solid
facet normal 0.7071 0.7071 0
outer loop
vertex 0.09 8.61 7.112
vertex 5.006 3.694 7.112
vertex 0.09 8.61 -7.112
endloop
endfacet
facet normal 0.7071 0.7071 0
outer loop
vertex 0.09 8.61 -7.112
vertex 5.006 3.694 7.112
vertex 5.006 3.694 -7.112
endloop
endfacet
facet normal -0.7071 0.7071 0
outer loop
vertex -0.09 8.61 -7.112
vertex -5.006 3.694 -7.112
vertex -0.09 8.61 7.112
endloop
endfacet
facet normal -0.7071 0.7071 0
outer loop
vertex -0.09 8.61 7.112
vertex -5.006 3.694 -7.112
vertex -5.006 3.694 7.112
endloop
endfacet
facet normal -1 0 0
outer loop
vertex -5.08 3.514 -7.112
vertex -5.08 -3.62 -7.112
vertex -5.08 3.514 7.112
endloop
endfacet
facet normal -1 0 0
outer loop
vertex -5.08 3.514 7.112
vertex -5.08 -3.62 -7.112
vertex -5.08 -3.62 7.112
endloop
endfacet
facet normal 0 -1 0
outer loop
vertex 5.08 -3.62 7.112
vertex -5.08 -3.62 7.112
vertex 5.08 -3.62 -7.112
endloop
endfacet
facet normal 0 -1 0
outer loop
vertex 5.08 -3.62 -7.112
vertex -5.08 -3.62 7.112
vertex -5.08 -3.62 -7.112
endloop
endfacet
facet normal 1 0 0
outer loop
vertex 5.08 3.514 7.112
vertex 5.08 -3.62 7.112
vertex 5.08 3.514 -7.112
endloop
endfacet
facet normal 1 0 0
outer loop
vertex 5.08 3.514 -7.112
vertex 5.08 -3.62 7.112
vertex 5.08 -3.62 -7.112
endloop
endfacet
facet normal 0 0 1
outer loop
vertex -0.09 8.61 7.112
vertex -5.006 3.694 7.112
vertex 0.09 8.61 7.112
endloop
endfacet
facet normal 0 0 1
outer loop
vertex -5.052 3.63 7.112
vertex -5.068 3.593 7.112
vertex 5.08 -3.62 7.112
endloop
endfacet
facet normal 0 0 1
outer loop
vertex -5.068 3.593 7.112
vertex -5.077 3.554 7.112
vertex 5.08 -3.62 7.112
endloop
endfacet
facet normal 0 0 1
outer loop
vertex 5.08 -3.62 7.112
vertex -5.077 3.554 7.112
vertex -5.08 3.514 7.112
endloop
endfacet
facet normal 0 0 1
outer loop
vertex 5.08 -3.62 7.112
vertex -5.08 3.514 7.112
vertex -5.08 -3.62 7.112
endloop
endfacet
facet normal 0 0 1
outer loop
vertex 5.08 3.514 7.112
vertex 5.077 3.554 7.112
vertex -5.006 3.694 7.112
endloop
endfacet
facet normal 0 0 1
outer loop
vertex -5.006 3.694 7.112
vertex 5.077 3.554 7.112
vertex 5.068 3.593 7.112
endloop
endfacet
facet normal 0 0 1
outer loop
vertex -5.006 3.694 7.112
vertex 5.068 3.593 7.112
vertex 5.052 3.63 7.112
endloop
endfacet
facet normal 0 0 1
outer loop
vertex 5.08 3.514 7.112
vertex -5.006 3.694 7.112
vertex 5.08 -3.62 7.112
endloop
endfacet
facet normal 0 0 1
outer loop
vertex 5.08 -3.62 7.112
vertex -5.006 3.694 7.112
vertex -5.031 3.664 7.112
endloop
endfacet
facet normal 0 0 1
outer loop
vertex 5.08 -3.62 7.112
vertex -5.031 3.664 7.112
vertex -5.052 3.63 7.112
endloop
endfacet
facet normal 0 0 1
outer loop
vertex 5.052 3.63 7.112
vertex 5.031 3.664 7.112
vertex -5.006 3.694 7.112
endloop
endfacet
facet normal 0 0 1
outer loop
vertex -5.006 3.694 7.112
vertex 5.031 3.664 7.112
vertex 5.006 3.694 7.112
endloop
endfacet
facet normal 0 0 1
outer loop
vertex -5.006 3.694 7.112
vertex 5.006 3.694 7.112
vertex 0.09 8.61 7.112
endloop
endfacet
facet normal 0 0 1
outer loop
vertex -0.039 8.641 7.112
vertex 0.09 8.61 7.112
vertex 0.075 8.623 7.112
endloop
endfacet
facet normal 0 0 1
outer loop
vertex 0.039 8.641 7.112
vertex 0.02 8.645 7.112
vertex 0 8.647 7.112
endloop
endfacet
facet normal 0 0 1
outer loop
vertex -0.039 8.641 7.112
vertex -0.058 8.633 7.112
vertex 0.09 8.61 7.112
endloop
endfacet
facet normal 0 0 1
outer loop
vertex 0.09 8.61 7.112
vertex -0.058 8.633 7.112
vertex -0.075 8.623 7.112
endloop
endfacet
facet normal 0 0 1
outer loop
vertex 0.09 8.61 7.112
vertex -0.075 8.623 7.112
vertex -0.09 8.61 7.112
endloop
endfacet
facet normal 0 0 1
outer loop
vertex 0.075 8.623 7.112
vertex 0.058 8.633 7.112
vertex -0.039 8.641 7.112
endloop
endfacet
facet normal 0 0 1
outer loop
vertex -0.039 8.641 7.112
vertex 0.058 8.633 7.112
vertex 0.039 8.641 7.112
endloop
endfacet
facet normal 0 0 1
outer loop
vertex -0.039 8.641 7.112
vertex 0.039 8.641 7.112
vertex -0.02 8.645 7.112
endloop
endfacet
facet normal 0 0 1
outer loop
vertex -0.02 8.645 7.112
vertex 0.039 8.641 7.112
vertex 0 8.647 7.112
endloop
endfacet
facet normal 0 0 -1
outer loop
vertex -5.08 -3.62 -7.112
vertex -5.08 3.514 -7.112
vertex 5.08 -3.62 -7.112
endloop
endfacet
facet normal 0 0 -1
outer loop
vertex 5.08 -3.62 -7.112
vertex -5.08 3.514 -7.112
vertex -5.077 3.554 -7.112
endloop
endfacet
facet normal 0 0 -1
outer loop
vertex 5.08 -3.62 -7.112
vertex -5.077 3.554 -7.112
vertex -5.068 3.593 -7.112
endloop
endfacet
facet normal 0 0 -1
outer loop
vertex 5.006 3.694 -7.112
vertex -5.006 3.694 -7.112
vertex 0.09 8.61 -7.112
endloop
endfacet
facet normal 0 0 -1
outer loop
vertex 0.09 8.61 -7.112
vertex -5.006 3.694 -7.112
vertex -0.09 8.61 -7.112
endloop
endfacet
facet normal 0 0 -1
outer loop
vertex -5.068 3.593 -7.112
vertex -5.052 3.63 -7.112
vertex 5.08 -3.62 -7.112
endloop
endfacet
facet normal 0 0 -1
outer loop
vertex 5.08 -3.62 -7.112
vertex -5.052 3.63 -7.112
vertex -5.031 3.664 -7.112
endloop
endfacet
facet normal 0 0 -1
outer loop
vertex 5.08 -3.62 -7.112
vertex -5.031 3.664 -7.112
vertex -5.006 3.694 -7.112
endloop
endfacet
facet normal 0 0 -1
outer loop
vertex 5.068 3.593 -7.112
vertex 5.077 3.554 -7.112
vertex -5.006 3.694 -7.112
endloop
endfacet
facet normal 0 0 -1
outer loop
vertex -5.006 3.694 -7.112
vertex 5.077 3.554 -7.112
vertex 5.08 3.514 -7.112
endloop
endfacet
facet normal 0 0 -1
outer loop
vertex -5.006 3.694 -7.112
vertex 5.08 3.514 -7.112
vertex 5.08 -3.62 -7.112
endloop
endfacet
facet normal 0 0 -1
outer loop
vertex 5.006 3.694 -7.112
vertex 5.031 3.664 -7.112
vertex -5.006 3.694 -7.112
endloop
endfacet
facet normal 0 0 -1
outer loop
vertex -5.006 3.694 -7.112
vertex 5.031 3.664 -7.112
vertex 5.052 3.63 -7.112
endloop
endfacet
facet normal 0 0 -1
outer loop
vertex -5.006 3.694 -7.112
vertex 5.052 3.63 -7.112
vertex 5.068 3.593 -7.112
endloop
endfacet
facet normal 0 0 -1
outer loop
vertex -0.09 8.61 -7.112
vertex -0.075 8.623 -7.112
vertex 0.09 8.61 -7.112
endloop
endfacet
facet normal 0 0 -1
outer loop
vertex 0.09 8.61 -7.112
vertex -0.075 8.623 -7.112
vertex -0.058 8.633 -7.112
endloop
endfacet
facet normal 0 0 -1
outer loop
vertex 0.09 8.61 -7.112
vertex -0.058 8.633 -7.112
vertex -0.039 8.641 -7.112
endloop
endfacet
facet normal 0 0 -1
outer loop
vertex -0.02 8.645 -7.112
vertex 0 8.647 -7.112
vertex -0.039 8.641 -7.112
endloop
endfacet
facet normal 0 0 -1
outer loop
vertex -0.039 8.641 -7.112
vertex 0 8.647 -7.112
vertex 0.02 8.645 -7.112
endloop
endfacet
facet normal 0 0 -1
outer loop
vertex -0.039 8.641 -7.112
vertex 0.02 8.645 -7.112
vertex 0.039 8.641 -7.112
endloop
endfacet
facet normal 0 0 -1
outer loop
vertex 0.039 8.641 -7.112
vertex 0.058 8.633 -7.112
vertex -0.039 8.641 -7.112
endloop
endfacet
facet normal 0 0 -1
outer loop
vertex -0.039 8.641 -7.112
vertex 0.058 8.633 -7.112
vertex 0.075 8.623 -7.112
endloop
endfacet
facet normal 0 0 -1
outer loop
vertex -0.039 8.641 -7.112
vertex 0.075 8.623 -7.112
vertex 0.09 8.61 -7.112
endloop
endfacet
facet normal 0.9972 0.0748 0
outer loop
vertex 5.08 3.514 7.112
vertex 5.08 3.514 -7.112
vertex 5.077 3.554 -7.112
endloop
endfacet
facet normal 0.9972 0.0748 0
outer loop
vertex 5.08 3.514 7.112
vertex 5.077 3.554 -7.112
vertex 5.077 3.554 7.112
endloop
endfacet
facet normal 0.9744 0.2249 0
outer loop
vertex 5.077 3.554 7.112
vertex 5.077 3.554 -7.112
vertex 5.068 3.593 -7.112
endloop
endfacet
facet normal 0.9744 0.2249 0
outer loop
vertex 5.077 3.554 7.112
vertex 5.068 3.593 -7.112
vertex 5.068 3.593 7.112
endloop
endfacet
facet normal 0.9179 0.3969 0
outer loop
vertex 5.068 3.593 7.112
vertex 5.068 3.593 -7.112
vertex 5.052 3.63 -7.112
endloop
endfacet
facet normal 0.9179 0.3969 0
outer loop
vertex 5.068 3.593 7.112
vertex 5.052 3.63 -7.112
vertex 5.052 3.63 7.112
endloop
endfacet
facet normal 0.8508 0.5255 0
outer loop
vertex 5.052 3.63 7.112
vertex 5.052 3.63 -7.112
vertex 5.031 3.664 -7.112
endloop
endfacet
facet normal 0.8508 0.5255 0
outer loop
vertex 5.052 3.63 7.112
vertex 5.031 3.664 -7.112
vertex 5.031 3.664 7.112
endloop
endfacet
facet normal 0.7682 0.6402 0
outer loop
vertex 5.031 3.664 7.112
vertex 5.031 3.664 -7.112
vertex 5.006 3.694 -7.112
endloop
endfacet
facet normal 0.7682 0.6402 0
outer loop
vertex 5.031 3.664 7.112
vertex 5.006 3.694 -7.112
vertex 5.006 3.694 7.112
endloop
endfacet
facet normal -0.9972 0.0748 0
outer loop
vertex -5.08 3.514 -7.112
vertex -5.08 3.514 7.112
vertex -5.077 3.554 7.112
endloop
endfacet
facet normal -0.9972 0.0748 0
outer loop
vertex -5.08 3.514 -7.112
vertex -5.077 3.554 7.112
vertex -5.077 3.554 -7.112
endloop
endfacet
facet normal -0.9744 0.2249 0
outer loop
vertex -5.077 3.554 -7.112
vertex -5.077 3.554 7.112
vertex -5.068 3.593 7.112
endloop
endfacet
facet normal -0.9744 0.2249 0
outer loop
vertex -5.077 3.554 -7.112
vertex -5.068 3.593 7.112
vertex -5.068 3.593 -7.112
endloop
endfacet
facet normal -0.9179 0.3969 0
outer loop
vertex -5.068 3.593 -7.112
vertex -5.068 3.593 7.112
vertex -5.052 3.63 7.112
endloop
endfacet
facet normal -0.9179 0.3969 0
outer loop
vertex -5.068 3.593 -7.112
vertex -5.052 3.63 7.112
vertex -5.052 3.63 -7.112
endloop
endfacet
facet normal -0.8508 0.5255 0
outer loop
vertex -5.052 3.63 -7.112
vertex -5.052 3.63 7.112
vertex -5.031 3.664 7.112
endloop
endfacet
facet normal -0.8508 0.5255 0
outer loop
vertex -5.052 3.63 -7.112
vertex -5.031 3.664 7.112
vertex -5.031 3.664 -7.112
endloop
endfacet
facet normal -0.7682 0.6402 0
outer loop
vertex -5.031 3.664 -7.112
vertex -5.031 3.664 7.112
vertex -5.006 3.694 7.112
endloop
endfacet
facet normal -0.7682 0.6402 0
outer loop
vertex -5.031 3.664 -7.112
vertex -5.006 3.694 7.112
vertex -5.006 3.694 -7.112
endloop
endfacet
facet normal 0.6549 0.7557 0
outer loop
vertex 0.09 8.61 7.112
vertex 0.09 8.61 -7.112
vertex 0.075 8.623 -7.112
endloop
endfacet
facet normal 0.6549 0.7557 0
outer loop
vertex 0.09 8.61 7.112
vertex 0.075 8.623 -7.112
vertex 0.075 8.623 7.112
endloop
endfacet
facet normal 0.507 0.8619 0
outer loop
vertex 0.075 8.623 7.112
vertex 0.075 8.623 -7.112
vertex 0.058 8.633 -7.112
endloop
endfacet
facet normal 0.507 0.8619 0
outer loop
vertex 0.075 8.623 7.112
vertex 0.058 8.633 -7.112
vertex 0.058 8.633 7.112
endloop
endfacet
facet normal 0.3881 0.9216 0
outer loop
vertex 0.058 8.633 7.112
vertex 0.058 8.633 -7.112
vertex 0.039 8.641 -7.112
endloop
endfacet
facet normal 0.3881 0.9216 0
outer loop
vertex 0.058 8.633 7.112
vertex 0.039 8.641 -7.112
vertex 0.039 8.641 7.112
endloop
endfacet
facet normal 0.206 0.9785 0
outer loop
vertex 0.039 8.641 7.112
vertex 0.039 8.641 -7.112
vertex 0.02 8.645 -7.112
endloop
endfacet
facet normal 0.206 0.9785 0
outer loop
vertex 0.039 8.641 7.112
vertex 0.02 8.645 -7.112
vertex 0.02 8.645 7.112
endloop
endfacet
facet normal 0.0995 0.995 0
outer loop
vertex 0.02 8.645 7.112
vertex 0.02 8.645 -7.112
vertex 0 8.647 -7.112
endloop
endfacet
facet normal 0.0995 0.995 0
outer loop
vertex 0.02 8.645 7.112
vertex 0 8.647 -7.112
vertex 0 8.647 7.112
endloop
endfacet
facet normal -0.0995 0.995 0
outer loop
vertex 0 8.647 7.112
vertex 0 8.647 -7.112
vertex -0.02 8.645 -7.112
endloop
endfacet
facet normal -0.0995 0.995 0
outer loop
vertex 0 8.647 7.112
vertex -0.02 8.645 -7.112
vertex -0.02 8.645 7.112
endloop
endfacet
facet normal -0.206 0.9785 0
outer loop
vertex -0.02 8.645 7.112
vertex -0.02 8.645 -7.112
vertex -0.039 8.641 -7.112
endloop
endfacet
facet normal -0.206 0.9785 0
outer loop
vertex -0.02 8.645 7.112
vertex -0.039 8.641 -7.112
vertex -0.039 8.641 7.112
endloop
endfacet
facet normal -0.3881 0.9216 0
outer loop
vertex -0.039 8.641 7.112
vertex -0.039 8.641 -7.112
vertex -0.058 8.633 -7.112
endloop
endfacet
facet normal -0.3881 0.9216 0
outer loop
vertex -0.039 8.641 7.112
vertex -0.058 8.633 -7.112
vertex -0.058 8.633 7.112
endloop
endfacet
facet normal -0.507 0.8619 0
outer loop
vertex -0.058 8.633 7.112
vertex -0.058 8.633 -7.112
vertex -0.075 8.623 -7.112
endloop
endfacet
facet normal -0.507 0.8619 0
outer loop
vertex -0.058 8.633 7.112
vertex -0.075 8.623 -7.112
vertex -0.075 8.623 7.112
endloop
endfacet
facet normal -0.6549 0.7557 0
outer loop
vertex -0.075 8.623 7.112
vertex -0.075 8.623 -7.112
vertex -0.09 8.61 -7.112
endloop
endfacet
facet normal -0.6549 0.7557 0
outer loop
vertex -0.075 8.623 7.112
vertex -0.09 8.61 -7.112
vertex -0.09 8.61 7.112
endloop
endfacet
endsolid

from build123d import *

# Parameters (mm, degrees)
SKETCH1_W           = 10.16
SKETCH1_H           = 7.239
BOSS_EXTRUDE1_DEPTH = 7.112
FILLET2_R           = 0.254
FILLET3_R           = 0.127


with BuildPart() as part:
    # Sketch1 → Boss-Extrude1 (new body, symmetric)
    with BuildSketch(Plane.XY):
        Polygon((0, 8.6995), (5.08, 3.6195), (-5.08, 3.6195), align=None)
        Rectangle(SKETCH1_W, SKETCH1_H)
    extrude(amount=BOSS_EXTRUDE1_DEPTH, both=True)

    # Fillet2
    fillet2_edges = [part.edges().sort_by_distance(p)[0] for p in [
        (5.08, 3.6195, 0),
        (-5.08, 3.6195, 0),
    ]]
    fillet(fillet2_edges, radius=FILLET2_R)

    # Fillet3
    fillet3_edges = [part.edges().sort_by_distance(p)[0] for p in [
        (0, 8.6995, 0),
    ]]
    fillet(fillet3_edges, radius=FILLET3_R)


solid = part.part
